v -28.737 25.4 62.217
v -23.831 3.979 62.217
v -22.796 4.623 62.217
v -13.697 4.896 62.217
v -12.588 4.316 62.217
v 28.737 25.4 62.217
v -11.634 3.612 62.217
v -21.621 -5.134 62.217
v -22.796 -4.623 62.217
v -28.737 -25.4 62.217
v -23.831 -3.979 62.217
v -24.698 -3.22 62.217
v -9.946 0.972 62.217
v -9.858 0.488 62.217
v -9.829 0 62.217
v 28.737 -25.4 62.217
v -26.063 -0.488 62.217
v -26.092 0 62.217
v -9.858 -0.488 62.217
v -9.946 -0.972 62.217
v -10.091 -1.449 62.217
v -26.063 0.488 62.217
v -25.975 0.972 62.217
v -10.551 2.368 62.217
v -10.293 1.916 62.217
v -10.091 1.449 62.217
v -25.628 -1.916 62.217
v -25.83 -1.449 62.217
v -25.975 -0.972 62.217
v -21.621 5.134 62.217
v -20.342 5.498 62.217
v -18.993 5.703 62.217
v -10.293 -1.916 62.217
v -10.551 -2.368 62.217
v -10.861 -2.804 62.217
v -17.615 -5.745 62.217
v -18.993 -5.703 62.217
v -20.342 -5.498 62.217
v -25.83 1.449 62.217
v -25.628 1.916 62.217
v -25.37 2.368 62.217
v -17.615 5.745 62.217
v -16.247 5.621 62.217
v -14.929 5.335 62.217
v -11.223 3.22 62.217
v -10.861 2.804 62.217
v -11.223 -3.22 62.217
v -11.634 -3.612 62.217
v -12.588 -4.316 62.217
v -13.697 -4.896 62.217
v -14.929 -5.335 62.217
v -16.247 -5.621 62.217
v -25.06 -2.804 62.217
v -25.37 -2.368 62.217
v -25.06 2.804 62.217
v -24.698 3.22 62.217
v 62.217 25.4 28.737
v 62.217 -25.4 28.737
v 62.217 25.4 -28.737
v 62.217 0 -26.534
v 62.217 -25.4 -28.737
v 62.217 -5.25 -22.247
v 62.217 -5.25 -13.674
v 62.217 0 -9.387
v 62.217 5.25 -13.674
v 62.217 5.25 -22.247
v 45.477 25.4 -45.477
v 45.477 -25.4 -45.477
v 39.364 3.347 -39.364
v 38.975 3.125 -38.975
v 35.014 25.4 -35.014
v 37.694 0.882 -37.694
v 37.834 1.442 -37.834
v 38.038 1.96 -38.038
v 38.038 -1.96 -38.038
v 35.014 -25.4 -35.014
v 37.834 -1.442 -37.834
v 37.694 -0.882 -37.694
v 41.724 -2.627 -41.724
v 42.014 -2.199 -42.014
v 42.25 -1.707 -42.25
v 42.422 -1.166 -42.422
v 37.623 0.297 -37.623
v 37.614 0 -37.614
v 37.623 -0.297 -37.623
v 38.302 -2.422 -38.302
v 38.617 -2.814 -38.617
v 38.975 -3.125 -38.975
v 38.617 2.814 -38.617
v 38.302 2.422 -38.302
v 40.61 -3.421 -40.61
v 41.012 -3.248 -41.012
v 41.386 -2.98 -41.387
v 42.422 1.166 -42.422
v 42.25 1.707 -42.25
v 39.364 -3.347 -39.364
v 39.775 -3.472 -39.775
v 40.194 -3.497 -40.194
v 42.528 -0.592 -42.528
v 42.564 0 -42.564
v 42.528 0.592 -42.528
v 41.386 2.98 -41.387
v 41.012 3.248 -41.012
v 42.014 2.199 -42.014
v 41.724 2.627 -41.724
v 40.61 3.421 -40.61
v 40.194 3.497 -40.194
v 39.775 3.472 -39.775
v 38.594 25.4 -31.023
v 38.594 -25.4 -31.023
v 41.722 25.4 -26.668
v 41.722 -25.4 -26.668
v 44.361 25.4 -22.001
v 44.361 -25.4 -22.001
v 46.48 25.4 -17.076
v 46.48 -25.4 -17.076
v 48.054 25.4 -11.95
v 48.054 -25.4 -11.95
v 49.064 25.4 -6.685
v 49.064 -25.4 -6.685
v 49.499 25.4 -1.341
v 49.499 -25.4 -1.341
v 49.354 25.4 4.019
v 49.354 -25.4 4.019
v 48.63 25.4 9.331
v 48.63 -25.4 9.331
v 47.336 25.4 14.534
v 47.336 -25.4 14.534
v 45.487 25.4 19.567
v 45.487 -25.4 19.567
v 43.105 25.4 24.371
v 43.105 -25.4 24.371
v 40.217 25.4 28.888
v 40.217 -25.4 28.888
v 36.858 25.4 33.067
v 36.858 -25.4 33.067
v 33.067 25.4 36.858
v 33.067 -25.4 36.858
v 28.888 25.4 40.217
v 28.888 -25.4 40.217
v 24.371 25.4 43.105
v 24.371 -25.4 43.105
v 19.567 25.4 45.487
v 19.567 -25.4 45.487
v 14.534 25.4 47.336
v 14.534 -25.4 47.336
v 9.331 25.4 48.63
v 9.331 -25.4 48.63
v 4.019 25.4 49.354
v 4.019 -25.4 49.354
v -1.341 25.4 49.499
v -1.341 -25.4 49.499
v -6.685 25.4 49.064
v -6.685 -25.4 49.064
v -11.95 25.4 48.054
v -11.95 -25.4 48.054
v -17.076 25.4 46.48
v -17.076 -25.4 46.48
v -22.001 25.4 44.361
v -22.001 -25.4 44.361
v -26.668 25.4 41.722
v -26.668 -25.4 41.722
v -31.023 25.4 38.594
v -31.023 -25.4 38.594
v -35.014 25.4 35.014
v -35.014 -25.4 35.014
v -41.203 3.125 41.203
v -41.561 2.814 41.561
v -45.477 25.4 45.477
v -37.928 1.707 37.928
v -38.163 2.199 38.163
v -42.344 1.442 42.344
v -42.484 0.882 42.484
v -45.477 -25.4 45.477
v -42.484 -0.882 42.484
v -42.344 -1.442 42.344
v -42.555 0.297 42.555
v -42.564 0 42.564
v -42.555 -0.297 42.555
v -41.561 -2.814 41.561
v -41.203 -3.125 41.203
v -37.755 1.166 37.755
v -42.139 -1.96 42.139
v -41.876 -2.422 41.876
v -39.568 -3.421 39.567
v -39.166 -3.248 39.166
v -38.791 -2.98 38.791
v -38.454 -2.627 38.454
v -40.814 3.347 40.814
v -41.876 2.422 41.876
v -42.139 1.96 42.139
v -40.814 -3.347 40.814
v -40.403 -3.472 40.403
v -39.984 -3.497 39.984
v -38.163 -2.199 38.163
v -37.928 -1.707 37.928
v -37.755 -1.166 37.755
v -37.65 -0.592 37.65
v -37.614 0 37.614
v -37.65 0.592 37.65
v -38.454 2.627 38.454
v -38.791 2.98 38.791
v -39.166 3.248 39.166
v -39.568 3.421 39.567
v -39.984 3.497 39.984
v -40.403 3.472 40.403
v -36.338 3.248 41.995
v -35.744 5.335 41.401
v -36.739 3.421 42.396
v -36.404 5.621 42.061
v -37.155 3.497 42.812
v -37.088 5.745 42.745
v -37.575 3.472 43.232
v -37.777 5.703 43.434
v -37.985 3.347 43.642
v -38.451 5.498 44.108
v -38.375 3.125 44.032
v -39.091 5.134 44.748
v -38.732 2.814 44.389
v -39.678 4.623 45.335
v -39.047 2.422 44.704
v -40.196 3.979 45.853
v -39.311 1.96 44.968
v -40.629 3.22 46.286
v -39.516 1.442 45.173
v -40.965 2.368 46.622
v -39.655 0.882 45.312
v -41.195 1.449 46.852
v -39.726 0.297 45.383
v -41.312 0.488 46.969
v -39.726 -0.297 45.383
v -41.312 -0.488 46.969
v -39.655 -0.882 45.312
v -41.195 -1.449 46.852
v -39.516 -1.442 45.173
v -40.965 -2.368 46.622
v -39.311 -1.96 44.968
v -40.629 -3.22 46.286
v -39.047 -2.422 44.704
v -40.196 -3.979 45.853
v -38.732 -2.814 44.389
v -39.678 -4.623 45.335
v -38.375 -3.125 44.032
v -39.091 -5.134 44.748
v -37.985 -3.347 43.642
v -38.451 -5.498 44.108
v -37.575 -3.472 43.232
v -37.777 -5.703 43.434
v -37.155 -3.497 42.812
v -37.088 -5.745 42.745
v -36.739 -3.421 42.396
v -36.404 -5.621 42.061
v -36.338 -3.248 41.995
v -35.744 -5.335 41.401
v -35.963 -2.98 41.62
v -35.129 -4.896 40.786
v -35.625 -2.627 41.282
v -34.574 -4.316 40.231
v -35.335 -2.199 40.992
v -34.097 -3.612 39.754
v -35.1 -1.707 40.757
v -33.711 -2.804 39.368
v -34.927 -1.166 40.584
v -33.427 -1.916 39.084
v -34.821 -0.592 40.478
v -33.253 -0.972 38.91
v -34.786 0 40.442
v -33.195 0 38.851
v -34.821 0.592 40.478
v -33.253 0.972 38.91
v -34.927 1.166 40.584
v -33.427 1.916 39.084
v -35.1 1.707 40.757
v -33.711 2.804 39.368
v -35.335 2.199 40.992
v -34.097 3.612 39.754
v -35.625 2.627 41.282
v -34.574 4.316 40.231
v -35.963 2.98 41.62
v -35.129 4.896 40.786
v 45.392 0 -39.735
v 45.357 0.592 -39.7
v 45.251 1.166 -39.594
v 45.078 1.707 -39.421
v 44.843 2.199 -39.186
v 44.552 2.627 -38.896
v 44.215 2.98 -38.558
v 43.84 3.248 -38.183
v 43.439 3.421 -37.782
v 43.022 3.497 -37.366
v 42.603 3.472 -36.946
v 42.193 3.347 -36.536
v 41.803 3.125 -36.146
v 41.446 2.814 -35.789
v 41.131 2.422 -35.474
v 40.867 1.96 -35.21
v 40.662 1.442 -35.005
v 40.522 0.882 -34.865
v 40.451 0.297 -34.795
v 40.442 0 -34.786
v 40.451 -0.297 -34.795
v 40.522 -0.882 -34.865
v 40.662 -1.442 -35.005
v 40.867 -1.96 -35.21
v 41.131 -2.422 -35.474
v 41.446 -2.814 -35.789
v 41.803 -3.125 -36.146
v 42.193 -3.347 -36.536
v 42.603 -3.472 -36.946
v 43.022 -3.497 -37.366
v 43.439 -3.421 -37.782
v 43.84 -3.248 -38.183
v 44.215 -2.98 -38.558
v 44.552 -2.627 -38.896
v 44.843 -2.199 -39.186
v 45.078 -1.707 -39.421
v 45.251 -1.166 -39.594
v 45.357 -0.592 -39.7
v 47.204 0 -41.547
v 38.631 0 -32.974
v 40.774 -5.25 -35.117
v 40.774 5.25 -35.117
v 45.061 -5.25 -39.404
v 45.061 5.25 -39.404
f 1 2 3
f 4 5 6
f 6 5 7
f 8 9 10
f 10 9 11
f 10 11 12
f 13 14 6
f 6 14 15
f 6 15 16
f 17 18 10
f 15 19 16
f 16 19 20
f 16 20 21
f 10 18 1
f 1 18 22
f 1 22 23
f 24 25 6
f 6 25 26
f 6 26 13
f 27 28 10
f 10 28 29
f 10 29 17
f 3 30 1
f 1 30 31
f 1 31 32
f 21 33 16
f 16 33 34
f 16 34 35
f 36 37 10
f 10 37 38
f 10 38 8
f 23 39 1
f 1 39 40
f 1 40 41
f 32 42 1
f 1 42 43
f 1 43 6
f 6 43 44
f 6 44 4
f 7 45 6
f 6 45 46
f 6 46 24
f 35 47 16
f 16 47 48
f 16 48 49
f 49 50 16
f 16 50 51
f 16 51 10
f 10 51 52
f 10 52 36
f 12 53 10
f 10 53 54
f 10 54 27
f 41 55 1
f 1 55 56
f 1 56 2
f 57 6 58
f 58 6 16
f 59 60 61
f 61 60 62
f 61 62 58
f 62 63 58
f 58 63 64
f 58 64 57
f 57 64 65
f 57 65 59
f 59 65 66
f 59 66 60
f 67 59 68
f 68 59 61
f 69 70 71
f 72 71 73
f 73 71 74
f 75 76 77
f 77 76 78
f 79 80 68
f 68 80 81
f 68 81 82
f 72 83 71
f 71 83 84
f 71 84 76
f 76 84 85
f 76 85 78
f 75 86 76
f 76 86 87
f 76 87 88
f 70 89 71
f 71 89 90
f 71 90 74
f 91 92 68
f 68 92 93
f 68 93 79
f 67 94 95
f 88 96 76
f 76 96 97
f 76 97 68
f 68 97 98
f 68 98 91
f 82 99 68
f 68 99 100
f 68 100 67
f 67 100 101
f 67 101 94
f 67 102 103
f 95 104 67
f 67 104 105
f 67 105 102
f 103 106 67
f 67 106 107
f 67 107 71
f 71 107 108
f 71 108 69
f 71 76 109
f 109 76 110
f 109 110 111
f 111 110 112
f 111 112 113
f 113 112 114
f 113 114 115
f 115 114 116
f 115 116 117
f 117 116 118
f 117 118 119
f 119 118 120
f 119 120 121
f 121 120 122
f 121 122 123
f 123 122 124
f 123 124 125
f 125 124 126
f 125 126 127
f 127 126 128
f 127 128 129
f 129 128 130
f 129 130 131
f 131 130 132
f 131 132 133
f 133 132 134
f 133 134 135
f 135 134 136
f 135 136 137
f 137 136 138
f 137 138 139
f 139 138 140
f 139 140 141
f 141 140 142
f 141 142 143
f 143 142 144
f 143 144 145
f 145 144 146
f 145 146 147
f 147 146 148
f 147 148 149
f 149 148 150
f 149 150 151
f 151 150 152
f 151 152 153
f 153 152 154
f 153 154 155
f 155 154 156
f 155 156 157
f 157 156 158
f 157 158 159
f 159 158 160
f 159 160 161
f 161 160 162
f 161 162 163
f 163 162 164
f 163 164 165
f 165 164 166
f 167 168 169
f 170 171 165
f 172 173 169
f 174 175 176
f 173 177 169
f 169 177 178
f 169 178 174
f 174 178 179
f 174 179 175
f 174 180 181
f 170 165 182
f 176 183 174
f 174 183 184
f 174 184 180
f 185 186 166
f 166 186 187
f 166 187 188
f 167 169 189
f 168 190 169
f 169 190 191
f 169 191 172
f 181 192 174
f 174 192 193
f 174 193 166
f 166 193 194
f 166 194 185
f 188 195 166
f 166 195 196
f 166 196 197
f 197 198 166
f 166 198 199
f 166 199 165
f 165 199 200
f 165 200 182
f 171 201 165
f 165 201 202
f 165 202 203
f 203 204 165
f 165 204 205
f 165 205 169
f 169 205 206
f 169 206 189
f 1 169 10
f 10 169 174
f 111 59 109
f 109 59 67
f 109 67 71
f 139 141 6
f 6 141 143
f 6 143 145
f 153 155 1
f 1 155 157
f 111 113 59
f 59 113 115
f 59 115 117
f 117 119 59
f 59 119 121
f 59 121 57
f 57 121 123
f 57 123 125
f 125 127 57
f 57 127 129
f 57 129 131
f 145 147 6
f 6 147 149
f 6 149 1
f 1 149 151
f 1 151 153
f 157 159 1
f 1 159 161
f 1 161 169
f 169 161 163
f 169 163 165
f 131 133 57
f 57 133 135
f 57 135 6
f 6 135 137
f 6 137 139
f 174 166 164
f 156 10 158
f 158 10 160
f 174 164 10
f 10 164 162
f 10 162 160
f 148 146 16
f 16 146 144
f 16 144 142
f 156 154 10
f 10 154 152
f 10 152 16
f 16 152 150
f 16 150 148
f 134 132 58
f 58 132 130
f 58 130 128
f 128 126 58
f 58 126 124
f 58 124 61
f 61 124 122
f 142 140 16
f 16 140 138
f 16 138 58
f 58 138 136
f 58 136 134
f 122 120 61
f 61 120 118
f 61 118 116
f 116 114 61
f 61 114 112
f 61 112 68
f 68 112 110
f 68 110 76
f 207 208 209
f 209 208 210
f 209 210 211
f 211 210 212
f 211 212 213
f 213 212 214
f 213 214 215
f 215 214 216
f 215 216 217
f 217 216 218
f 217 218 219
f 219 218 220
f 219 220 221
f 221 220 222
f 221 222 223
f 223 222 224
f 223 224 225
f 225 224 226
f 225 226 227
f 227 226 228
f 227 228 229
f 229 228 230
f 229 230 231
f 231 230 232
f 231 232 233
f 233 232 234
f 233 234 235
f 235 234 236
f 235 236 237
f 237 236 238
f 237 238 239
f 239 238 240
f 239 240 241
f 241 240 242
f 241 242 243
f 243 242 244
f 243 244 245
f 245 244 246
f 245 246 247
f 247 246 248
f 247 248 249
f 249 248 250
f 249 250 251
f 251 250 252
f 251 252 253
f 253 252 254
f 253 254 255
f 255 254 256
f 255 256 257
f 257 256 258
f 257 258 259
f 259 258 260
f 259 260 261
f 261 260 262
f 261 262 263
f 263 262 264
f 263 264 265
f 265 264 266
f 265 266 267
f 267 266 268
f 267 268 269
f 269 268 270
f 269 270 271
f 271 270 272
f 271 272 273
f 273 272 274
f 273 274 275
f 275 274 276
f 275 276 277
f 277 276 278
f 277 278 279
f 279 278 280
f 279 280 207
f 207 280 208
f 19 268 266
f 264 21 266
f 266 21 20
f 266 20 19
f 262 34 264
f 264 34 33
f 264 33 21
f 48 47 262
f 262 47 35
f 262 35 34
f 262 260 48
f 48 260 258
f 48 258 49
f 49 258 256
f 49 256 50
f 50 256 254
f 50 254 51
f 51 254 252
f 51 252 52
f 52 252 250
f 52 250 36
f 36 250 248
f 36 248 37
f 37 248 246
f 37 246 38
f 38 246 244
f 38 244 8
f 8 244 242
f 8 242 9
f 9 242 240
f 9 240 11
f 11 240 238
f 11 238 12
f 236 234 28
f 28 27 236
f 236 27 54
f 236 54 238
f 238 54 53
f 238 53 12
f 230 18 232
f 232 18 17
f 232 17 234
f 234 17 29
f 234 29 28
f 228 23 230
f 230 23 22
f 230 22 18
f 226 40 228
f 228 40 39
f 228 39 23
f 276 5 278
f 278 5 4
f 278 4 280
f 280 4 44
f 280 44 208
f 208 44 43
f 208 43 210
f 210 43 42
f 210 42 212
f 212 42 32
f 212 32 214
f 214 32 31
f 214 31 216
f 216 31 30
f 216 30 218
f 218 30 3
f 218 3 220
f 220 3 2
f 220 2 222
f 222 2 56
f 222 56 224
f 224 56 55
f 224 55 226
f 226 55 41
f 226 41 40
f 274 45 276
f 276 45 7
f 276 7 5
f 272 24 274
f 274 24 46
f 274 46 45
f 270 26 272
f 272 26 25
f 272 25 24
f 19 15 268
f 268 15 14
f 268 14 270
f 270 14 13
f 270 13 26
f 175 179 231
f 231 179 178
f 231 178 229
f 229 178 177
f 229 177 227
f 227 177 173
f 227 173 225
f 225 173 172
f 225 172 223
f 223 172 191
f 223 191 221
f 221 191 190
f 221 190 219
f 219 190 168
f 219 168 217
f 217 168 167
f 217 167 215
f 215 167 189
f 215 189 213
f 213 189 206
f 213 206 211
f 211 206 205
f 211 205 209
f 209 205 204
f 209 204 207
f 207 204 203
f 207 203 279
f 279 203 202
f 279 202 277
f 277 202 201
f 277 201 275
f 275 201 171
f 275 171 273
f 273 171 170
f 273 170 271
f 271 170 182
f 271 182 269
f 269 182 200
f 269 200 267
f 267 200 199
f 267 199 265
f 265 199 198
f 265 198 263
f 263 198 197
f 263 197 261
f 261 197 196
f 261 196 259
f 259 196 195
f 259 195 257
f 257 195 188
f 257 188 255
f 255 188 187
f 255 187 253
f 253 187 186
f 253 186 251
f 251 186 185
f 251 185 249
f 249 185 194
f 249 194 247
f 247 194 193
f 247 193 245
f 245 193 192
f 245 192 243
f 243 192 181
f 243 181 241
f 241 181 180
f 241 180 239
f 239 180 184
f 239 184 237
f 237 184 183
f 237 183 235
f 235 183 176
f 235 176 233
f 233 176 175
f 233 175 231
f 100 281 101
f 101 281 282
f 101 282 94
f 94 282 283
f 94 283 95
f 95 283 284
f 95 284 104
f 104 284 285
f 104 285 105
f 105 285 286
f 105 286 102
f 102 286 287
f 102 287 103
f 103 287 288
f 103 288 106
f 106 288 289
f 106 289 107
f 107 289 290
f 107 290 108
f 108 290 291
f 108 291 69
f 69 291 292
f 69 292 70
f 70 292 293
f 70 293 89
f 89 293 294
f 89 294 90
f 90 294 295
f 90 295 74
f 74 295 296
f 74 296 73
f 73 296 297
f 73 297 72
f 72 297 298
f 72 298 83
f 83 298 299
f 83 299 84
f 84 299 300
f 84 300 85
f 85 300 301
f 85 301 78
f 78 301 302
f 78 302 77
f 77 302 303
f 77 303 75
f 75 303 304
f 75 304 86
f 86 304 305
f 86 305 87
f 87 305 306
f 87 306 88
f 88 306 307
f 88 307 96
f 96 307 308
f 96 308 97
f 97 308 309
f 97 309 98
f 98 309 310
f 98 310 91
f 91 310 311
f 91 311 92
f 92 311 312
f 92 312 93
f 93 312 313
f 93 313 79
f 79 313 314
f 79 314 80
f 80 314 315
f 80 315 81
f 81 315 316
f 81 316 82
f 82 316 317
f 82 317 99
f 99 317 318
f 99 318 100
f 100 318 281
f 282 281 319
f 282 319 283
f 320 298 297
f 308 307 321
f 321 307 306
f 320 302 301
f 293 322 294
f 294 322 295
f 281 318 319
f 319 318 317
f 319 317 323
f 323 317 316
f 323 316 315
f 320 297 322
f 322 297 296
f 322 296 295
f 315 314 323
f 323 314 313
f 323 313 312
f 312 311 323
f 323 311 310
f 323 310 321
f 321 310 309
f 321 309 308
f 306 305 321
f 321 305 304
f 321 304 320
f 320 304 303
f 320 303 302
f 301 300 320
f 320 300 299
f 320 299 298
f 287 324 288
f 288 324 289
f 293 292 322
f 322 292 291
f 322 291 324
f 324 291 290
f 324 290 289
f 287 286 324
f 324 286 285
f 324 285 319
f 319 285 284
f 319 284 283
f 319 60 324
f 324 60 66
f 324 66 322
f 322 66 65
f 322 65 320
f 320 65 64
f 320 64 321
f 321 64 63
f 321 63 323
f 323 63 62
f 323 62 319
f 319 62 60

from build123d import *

# Parameters (mm, degrees)
BOSS_EXTRUDE1_DEPTH  = 25.4
CUT_SWEEP1_START     = 4.000000128
CUT_SWEEP1_OUTLINE_R = 5.750000057
CUT_SWEEP1_DEPTH     = 33.044274766
CUT_SWEEP2_PROFILE_R = 3.499999985
CUT_EXTRUDE1_DEPTH   = 88.74529292


# Read off the part's stored shape, not the designer's step: Cut-Sweep1
with BuildPart() as part:
    # Sketch1 → Boss-Extrude1 (new, symmetric)
    with BuildSketch(Plane(origin=(0, 0, 0), x_dir=(1, 0, 0), z_dir=(0, 1, 0))):
        Polygon((-37.260478906, -42.917333336), (-40.088906121, -40.088906121), (-45.477059794, -45.477059794), (-28.736819587, -62.2173), (-17.960512242, -62.2173), align=None)
        with BuildLine():
            ThreePointArc((35.014018616, -35.014018616), (0, -49.5173), (-35.014018616, -35.014018616))
            Line((-35.014018616, -35.014018616), (-40.088906121, -40.088906121))
            Line((-40.088906121, -40.088906121), (-37.260478906, -42.917333336))
            Line((-37.260478906, -42.917333336), (-17.960512242, -62.2173))
            Line((-17.960512242, -62.2173), (0, -62.2173))
            Line((0, -62.2173), (28.736819587, -62.2173))
            Line((28.736819587, -62.2173), (45.477059794, -45.477059794))
            Line((45.477059794, -45.477059794), (35.014018616, -35.014018616))
        make_face()
        with BuildLine():
            Line((42.917333336, 37.260478906), (40.088906121, 40.088906121))
            Line((40.088906121, 40.088906121), (35.014018616, 35.014018616))
            ThreePointArc((35.014018616, 35.014018616), (45.748019975, 18.949450325), (49.5173, 0))
            ThreePointArc((49.5173, 0), (45.748019975, -18.949450325), (35.014018616, -35.014018616))
            Line((35.014018616, -35.014018616), (45.477059794, -45.477059794))
            Line((45.477059794, -45.477059794), (62.2173, -28.736819587))
            Line((62.2173, -28.736819587), (62.2173, 0))
            Line((62.2173, 0), (62.2173, 17.960512242))
            Line((62.2173, 17.960512242), (42.917333336, 37.260478906))
        make_face()
        Polygon((62.2173, 28.736819587), (45.477059794, 45.477059794), (40.088906121, 40.088906121), (42.917333336, 37.260478906), (62.2173, 17.960512242), align=None)
    extrude(amount=BOSS_EXTRUDE1_DEPTH, both=True)

    # Cut-Sweep1 outline → Cut-Sweep1 (cut)
    with BuildSketch(Plane(origin=(0, 0, 0), x_dir=(0.7071067811865471, 0, -0.707106781186548), z_dir=(0.707106781186548, 0, 0.707106781186547)).offset(CUT_SWEEP1_START)):
        with Locations((-56.694274737, 0)):
            Circle(CUT_SWEEP1_OUTLINE_R)
    extrude(amount=CUT_SWEEP1_DEPTH, mode=Mode.SUBTRACT)

    # Cut-Sweep2: sweep along a path in Sketch44
    with BuildLine(Plane(origin=(0, 0, 0), x_dir=(1, 0, 0), z_dir=(0, 1, 0))) as cut_sweep2_path:
        Line((-40.088906121, -40.088906121), (-37.260478906, -42.917333336))
    # Cut-Sweep2 profile (on start of the path) → Cut-Sweep2 (sweep, cut)
    with BuildSketch(Plane(origin=(-40.088906121, 0, 40.088906121), x_dir=(0.7071067811865493, 0, -0.7071067811865458), z_dir=(0.7071067811865458, 0, 0.7071067811865493))):
        Circle(CUT_SWEEP2_PROFILE_R)
    cut_sweep2 = sweep(path=cut_sweep2_path.line, mode=Mode.SUBTRACT)

    # Mirror1: Cut-Sweep2 across plane
    add(cut_sweep2.mirror(Plane(origin=(0, 0, 0), x_dir=(0.7071067811865477, 0, 0.7071067811865474), z_dir=(-0.7071067811865476, 0, 0.7071067811865476))), mode=Mode.SUBTRACT)

    # Sketch53 → Cut-Extrude1 (cut, through all)
    with BuildSketch(Plane(origin=(2.828427215, 0, 2.828427215), x_dir=(-0.7071067811865427, 0, 0.7071067811865525), z_dir=(-0.7071067811865525, 0, -0.7071067811865427))):
        Polygon((-62.756452611, 0), (-59.725363674, -5.250000041), (-53.6631858, -5.250000041), (-50.632096863, 0), (-53.6631858, 5.250000041), (-59.725363674, 5.250000041), align=None)
    extrude(amount=-CUT_EXTRUDE1_DEPTH, mode=Mode.SUBTRACT)


solid = part.part
